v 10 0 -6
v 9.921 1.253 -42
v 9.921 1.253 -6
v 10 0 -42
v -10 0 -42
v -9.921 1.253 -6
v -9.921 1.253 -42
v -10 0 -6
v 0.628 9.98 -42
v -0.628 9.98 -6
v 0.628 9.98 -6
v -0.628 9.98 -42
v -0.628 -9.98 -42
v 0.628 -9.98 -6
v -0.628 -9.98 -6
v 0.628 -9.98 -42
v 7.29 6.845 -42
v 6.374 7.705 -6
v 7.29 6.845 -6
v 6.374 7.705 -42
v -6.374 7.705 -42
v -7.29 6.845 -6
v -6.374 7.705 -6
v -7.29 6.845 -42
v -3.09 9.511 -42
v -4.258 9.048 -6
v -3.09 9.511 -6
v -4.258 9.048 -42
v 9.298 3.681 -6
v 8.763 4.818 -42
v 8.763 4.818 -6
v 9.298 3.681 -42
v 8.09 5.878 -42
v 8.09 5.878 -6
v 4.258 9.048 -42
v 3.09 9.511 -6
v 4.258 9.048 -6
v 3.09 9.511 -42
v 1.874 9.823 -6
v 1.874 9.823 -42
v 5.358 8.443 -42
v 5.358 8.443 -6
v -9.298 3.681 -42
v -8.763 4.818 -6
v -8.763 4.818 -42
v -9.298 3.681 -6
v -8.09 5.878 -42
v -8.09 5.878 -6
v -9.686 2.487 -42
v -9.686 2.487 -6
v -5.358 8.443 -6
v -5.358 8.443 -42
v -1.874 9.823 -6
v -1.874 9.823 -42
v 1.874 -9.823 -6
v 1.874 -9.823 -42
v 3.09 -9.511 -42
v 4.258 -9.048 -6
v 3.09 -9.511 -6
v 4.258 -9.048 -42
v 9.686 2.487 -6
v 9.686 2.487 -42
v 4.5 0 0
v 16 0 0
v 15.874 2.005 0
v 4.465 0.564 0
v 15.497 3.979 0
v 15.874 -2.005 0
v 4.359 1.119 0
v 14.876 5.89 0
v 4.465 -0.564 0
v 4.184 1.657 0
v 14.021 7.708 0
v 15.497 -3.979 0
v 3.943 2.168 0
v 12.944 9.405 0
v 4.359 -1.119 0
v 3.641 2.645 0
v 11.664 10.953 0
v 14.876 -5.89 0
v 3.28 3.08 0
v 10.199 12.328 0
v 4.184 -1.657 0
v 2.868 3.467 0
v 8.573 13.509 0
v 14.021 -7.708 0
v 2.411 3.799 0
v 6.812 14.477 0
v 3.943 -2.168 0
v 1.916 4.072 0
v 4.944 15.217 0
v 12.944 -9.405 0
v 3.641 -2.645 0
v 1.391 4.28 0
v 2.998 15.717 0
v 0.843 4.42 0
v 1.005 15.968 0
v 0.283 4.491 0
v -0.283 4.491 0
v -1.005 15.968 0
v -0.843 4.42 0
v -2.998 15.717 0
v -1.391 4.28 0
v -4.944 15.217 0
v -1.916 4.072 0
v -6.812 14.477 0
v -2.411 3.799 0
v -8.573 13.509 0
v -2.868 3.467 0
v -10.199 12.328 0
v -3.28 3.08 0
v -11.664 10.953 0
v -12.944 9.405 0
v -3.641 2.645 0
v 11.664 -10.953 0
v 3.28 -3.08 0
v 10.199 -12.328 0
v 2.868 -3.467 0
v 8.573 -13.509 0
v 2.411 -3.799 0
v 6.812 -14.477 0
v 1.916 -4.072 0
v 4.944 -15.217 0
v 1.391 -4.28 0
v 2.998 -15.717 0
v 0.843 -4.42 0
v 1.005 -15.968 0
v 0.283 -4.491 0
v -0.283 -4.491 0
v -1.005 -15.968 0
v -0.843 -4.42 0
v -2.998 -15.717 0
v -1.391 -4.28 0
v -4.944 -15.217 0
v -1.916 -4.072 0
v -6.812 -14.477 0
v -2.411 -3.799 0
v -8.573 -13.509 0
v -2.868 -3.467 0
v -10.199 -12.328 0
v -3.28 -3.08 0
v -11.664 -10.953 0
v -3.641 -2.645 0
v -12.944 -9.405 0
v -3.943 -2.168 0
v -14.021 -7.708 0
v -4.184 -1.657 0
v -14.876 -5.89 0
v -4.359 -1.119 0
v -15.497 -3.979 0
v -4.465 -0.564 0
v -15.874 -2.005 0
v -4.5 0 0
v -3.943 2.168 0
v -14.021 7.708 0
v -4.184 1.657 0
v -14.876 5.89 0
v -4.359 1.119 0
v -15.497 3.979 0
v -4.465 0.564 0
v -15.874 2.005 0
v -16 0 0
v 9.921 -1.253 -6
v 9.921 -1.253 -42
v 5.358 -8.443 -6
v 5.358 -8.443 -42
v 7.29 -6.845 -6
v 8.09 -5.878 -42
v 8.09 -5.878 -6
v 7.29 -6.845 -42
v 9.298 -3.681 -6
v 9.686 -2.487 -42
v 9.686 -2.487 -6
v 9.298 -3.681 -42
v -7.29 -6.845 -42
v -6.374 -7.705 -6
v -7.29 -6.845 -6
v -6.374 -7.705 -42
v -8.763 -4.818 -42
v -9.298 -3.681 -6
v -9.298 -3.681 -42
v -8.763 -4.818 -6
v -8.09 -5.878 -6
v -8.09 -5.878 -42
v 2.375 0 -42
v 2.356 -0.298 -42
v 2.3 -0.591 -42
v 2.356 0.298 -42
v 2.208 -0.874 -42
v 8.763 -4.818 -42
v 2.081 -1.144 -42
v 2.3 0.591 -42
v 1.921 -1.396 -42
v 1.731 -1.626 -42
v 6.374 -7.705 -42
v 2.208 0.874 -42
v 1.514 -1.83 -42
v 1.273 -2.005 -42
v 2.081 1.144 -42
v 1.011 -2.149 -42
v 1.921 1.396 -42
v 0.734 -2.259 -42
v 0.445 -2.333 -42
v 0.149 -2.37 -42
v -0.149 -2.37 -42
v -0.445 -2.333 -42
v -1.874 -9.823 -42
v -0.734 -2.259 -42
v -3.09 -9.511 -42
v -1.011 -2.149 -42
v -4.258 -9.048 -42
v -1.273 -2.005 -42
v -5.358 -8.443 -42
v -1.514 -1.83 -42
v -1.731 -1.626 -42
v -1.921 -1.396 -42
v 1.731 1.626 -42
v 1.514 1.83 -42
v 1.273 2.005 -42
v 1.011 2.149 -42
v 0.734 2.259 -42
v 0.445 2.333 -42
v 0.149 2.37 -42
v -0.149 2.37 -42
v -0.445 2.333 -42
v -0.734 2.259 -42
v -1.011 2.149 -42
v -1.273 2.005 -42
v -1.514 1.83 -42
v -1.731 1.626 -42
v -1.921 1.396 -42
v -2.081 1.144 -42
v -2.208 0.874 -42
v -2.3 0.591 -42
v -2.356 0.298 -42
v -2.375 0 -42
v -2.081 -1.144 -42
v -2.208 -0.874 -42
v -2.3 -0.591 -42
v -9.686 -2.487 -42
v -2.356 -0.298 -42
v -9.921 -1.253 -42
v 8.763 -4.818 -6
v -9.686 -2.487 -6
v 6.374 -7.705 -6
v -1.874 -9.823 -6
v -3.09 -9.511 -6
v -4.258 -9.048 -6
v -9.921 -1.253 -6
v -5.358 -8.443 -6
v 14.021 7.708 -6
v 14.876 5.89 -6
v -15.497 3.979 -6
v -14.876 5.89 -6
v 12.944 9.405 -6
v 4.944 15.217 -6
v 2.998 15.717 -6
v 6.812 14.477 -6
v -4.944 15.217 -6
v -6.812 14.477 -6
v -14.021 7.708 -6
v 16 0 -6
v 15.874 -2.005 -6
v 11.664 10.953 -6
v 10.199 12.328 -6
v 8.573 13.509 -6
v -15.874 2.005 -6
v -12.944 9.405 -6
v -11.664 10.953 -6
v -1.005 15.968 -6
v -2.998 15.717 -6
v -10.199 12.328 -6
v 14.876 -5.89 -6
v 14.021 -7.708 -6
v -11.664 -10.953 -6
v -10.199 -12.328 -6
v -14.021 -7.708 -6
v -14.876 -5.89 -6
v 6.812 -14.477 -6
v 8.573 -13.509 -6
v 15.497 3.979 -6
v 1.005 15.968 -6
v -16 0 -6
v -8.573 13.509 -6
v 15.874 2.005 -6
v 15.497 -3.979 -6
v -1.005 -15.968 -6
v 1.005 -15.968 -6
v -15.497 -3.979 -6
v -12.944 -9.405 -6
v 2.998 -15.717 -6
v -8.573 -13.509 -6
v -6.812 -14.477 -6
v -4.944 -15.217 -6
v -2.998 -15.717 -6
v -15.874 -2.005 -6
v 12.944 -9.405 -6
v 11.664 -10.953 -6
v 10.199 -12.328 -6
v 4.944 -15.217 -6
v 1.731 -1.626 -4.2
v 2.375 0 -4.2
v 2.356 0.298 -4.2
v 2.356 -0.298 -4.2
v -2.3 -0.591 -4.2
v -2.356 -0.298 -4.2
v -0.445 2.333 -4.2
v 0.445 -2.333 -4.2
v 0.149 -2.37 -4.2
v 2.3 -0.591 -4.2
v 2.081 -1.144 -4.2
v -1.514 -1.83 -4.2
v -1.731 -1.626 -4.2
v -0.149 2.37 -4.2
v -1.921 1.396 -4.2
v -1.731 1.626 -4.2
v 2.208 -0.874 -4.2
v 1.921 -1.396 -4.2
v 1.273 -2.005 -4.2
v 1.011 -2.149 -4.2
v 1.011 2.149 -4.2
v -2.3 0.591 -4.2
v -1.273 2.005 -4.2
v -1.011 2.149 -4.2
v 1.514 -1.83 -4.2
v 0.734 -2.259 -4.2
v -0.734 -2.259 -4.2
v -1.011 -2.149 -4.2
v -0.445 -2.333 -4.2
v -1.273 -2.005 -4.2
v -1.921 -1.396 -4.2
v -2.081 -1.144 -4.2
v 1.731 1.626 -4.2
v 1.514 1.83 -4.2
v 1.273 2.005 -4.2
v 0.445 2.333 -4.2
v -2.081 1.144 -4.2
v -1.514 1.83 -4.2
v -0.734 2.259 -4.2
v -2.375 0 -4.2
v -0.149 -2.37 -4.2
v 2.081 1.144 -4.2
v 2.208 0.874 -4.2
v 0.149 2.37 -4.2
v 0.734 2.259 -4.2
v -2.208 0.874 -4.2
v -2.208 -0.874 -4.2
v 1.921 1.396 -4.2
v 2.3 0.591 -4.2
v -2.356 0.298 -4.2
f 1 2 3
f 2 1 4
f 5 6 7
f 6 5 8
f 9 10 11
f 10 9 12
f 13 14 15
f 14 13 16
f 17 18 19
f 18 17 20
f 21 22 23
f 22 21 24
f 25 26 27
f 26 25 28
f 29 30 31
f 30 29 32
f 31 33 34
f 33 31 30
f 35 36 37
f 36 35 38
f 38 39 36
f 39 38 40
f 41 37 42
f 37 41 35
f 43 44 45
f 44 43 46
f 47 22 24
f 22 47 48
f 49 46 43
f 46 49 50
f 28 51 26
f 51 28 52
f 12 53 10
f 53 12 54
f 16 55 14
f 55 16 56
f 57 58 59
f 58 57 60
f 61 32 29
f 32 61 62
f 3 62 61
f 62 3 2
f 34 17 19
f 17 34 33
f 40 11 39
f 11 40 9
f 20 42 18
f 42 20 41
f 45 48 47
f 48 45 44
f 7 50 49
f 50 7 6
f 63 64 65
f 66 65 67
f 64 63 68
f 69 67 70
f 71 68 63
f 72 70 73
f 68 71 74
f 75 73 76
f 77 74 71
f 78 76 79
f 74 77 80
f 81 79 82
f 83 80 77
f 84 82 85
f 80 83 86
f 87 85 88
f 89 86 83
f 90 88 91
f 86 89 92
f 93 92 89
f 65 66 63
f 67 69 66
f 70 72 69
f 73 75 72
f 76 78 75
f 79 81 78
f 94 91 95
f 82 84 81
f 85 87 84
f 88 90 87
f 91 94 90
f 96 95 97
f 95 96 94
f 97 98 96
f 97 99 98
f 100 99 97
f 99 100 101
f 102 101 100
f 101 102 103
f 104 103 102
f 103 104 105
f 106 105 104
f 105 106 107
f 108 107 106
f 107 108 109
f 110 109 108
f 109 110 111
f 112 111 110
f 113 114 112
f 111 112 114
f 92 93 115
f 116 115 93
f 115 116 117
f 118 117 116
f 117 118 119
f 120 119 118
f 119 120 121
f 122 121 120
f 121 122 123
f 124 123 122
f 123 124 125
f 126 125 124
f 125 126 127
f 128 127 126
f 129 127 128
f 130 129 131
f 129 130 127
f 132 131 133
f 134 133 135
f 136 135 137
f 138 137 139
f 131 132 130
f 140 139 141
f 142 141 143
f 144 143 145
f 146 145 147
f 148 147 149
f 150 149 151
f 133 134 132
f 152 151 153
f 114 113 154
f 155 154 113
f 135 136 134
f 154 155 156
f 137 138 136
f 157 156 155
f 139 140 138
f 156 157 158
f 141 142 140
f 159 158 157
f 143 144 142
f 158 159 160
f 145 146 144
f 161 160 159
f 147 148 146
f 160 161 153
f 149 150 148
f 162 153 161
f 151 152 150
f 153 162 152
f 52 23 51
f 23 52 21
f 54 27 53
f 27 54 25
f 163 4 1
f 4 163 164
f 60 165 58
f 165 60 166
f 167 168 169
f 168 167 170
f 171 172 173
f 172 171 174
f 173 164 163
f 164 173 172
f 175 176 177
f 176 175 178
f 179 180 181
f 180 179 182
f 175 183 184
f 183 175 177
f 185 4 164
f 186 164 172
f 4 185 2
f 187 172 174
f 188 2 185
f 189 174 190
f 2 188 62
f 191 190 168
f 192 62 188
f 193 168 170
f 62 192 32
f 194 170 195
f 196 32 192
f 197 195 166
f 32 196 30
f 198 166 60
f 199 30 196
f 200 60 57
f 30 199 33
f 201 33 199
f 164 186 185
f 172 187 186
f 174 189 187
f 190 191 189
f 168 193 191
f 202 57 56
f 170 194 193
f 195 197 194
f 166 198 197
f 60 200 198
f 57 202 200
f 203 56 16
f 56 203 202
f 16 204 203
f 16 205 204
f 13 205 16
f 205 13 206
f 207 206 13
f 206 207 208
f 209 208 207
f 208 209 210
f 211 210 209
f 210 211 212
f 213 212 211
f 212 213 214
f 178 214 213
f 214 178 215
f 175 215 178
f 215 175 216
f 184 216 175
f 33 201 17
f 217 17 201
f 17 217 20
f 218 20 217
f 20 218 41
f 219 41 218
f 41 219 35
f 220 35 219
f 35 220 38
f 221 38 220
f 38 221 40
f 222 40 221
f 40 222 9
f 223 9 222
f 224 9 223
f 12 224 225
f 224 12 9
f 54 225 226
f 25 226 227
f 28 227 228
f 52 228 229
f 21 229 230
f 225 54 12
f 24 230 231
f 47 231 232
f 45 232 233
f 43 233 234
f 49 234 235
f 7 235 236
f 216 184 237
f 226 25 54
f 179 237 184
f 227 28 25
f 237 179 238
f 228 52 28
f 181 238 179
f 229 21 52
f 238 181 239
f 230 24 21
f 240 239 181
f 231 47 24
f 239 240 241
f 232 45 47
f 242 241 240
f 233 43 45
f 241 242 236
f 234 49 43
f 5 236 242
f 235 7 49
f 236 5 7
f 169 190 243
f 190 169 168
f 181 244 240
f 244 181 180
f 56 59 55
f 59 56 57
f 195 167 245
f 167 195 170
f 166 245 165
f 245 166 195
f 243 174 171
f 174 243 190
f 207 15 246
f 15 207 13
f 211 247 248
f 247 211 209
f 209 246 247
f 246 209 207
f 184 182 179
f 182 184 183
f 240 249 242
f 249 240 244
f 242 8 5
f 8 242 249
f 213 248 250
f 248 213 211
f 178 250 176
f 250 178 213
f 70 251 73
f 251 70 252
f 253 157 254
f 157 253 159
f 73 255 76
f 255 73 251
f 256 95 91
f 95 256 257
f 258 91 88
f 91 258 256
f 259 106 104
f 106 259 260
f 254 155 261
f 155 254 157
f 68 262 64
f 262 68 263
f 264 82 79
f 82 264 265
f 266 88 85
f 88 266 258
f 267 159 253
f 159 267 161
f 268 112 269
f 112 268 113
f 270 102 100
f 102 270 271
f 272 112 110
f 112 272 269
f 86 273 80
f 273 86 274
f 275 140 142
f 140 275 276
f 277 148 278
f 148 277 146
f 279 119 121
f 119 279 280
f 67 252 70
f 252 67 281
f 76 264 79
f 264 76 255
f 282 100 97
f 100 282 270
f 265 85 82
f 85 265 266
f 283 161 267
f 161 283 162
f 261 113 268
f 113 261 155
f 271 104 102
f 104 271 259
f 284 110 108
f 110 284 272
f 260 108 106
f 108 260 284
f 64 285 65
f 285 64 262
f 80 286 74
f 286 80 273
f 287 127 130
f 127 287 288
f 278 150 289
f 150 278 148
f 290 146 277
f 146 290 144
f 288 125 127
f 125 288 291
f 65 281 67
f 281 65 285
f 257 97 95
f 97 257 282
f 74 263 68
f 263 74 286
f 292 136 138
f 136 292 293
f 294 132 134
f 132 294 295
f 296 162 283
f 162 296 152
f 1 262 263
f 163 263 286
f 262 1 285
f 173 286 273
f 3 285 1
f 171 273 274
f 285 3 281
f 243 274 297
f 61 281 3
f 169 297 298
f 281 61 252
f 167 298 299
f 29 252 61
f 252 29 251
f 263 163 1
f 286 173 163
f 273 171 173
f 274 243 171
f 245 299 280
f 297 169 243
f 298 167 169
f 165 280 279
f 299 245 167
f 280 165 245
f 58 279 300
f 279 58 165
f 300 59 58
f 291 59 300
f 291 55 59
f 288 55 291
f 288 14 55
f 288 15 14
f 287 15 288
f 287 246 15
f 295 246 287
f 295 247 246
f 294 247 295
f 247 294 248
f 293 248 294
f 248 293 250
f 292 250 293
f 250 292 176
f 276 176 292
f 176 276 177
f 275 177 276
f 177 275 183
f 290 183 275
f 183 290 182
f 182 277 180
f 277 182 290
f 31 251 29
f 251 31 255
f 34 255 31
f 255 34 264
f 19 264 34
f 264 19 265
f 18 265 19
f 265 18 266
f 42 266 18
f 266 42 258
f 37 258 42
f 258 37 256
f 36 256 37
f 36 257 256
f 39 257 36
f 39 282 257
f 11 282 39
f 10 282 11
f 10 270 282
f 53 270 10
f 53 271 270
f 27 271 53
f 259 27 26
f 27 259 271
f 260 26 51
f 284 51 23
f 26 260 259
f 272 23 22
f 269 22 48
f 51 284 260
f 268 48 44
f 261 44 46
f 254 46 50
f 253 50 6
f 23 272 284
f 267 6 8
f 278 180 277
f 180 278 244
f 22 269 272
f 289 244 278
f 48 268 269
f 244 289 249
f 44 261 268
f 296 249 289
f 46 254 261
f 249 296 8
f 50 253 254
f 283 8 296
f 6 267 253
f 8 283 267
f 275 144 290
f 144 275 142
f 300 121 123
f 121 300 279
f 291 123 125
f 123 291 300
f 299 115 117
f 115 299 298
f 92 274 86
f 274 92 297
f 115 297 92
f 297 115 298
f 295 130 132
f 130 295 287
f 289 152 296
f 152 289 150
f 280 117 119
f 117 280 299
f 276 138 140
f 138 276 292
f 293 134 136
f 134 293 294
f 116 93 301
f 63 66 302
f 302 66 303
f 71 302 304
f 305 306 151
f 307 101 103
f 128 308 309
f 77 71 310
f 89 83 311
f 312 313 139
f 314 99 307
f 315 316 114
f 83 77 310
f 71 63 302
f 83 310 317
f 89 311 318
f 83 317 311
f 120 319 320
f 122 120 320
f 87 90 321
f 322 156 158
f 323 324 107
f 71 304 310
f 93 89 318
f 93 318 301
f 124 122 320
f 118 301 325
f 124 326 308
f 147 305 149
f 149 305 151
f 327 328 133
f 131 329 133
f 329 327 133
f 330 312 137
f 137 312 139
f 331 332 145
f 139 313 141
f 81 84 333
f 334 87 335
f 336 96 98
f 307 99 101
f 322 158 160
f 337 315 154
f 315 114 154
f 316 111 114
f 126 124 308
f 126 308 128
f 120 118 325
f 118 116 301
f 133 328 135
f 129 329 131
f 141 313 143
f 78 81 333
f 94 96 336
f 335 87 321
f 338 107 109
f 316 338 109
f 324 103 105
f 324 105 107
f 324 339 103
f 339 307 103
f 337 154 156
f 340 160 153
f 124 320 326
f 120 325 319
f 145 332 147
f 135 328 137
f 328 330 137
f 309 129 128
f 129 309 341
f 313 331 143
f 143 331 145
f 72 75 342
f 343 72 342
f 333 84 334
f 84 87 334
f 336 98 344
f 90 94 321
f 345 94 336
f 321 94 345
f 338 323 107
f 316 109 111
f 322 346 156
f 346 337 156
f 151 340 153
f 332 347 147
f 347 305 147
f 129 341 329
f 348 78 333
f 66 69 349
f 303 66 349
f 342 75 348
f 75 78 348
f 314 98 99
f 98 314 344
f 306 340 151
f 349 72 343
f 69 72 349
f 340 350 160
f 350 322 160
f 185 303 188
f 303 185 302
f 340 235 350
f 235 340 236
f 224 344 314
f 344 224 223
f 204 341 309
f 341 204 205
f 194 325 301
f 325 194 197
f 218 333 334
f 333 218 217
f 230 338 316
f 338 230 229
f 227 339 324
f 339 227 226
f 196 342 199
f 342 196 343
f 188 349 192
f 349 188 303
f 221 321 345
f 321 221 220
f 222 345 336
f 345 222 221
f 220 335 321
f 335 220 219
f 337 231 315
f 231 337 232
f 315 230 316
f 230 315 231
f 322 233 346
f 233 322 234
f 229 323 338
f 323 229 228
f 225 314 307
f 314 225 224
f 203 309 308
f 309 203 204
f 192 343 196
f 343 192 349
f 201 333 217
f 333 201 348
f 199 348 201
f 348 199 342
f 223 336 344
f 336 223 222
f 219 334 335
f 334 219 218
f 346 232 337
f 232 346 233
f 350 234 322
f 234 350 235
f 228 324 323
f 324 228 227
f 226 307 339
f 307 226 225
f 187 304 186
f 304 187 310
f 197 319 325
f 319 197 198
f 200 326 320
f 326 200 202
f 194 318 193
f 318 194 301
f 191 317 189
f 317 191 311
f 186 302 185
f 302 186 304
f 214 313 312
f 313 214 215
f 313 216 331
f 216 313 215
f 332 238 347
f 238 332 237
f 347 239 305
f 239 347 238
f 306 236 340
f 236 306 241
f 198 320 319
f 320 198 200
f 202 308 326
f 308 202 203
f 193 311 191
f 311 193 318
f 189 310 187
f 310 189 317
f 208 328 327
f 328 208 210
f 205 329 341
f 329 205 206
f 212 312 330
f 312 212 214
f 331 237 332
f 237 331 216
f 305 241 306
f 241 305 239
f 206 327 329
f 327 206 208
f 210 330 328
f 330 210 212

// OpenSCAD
$fn = 50;


difference() {
	union() {
		translate(v = [0, 0, -42.0000000000]) {
			cylinder(h = 42, r = 10.0000000000);
		}
		translate(v = [0, 0, -6.0000000000]) {
			cylinder(h = 6, r = 16.0000000000);
		}
	}
	union() {
		translate(v = [0, 0, 0]) {
			rotate(a = [0, 0, 0]) {
				difference() {
					union() {
						#translate(v = [0, 0, -42.0000000000]) {
							cylinder(h = 42, r = 2.2500000000);
						}
						#translate(v = [0, 0, -4.2000000000]) {
							cylinder(h = 4.2000000000, r1 = 2.3750000000, r2 = 4.5000000000);
						}
						#translate(v = [0, 0, -42.0000000000]) {
							cylinder(h = 42, r = 2.3750000000);
						}
						#translate(v = [0, 0, -42.0000000000]) {
							cylinder(h = 42, r = 2.2500000000);
						}
					}
					union();
				}
			}
		}
	}
}
